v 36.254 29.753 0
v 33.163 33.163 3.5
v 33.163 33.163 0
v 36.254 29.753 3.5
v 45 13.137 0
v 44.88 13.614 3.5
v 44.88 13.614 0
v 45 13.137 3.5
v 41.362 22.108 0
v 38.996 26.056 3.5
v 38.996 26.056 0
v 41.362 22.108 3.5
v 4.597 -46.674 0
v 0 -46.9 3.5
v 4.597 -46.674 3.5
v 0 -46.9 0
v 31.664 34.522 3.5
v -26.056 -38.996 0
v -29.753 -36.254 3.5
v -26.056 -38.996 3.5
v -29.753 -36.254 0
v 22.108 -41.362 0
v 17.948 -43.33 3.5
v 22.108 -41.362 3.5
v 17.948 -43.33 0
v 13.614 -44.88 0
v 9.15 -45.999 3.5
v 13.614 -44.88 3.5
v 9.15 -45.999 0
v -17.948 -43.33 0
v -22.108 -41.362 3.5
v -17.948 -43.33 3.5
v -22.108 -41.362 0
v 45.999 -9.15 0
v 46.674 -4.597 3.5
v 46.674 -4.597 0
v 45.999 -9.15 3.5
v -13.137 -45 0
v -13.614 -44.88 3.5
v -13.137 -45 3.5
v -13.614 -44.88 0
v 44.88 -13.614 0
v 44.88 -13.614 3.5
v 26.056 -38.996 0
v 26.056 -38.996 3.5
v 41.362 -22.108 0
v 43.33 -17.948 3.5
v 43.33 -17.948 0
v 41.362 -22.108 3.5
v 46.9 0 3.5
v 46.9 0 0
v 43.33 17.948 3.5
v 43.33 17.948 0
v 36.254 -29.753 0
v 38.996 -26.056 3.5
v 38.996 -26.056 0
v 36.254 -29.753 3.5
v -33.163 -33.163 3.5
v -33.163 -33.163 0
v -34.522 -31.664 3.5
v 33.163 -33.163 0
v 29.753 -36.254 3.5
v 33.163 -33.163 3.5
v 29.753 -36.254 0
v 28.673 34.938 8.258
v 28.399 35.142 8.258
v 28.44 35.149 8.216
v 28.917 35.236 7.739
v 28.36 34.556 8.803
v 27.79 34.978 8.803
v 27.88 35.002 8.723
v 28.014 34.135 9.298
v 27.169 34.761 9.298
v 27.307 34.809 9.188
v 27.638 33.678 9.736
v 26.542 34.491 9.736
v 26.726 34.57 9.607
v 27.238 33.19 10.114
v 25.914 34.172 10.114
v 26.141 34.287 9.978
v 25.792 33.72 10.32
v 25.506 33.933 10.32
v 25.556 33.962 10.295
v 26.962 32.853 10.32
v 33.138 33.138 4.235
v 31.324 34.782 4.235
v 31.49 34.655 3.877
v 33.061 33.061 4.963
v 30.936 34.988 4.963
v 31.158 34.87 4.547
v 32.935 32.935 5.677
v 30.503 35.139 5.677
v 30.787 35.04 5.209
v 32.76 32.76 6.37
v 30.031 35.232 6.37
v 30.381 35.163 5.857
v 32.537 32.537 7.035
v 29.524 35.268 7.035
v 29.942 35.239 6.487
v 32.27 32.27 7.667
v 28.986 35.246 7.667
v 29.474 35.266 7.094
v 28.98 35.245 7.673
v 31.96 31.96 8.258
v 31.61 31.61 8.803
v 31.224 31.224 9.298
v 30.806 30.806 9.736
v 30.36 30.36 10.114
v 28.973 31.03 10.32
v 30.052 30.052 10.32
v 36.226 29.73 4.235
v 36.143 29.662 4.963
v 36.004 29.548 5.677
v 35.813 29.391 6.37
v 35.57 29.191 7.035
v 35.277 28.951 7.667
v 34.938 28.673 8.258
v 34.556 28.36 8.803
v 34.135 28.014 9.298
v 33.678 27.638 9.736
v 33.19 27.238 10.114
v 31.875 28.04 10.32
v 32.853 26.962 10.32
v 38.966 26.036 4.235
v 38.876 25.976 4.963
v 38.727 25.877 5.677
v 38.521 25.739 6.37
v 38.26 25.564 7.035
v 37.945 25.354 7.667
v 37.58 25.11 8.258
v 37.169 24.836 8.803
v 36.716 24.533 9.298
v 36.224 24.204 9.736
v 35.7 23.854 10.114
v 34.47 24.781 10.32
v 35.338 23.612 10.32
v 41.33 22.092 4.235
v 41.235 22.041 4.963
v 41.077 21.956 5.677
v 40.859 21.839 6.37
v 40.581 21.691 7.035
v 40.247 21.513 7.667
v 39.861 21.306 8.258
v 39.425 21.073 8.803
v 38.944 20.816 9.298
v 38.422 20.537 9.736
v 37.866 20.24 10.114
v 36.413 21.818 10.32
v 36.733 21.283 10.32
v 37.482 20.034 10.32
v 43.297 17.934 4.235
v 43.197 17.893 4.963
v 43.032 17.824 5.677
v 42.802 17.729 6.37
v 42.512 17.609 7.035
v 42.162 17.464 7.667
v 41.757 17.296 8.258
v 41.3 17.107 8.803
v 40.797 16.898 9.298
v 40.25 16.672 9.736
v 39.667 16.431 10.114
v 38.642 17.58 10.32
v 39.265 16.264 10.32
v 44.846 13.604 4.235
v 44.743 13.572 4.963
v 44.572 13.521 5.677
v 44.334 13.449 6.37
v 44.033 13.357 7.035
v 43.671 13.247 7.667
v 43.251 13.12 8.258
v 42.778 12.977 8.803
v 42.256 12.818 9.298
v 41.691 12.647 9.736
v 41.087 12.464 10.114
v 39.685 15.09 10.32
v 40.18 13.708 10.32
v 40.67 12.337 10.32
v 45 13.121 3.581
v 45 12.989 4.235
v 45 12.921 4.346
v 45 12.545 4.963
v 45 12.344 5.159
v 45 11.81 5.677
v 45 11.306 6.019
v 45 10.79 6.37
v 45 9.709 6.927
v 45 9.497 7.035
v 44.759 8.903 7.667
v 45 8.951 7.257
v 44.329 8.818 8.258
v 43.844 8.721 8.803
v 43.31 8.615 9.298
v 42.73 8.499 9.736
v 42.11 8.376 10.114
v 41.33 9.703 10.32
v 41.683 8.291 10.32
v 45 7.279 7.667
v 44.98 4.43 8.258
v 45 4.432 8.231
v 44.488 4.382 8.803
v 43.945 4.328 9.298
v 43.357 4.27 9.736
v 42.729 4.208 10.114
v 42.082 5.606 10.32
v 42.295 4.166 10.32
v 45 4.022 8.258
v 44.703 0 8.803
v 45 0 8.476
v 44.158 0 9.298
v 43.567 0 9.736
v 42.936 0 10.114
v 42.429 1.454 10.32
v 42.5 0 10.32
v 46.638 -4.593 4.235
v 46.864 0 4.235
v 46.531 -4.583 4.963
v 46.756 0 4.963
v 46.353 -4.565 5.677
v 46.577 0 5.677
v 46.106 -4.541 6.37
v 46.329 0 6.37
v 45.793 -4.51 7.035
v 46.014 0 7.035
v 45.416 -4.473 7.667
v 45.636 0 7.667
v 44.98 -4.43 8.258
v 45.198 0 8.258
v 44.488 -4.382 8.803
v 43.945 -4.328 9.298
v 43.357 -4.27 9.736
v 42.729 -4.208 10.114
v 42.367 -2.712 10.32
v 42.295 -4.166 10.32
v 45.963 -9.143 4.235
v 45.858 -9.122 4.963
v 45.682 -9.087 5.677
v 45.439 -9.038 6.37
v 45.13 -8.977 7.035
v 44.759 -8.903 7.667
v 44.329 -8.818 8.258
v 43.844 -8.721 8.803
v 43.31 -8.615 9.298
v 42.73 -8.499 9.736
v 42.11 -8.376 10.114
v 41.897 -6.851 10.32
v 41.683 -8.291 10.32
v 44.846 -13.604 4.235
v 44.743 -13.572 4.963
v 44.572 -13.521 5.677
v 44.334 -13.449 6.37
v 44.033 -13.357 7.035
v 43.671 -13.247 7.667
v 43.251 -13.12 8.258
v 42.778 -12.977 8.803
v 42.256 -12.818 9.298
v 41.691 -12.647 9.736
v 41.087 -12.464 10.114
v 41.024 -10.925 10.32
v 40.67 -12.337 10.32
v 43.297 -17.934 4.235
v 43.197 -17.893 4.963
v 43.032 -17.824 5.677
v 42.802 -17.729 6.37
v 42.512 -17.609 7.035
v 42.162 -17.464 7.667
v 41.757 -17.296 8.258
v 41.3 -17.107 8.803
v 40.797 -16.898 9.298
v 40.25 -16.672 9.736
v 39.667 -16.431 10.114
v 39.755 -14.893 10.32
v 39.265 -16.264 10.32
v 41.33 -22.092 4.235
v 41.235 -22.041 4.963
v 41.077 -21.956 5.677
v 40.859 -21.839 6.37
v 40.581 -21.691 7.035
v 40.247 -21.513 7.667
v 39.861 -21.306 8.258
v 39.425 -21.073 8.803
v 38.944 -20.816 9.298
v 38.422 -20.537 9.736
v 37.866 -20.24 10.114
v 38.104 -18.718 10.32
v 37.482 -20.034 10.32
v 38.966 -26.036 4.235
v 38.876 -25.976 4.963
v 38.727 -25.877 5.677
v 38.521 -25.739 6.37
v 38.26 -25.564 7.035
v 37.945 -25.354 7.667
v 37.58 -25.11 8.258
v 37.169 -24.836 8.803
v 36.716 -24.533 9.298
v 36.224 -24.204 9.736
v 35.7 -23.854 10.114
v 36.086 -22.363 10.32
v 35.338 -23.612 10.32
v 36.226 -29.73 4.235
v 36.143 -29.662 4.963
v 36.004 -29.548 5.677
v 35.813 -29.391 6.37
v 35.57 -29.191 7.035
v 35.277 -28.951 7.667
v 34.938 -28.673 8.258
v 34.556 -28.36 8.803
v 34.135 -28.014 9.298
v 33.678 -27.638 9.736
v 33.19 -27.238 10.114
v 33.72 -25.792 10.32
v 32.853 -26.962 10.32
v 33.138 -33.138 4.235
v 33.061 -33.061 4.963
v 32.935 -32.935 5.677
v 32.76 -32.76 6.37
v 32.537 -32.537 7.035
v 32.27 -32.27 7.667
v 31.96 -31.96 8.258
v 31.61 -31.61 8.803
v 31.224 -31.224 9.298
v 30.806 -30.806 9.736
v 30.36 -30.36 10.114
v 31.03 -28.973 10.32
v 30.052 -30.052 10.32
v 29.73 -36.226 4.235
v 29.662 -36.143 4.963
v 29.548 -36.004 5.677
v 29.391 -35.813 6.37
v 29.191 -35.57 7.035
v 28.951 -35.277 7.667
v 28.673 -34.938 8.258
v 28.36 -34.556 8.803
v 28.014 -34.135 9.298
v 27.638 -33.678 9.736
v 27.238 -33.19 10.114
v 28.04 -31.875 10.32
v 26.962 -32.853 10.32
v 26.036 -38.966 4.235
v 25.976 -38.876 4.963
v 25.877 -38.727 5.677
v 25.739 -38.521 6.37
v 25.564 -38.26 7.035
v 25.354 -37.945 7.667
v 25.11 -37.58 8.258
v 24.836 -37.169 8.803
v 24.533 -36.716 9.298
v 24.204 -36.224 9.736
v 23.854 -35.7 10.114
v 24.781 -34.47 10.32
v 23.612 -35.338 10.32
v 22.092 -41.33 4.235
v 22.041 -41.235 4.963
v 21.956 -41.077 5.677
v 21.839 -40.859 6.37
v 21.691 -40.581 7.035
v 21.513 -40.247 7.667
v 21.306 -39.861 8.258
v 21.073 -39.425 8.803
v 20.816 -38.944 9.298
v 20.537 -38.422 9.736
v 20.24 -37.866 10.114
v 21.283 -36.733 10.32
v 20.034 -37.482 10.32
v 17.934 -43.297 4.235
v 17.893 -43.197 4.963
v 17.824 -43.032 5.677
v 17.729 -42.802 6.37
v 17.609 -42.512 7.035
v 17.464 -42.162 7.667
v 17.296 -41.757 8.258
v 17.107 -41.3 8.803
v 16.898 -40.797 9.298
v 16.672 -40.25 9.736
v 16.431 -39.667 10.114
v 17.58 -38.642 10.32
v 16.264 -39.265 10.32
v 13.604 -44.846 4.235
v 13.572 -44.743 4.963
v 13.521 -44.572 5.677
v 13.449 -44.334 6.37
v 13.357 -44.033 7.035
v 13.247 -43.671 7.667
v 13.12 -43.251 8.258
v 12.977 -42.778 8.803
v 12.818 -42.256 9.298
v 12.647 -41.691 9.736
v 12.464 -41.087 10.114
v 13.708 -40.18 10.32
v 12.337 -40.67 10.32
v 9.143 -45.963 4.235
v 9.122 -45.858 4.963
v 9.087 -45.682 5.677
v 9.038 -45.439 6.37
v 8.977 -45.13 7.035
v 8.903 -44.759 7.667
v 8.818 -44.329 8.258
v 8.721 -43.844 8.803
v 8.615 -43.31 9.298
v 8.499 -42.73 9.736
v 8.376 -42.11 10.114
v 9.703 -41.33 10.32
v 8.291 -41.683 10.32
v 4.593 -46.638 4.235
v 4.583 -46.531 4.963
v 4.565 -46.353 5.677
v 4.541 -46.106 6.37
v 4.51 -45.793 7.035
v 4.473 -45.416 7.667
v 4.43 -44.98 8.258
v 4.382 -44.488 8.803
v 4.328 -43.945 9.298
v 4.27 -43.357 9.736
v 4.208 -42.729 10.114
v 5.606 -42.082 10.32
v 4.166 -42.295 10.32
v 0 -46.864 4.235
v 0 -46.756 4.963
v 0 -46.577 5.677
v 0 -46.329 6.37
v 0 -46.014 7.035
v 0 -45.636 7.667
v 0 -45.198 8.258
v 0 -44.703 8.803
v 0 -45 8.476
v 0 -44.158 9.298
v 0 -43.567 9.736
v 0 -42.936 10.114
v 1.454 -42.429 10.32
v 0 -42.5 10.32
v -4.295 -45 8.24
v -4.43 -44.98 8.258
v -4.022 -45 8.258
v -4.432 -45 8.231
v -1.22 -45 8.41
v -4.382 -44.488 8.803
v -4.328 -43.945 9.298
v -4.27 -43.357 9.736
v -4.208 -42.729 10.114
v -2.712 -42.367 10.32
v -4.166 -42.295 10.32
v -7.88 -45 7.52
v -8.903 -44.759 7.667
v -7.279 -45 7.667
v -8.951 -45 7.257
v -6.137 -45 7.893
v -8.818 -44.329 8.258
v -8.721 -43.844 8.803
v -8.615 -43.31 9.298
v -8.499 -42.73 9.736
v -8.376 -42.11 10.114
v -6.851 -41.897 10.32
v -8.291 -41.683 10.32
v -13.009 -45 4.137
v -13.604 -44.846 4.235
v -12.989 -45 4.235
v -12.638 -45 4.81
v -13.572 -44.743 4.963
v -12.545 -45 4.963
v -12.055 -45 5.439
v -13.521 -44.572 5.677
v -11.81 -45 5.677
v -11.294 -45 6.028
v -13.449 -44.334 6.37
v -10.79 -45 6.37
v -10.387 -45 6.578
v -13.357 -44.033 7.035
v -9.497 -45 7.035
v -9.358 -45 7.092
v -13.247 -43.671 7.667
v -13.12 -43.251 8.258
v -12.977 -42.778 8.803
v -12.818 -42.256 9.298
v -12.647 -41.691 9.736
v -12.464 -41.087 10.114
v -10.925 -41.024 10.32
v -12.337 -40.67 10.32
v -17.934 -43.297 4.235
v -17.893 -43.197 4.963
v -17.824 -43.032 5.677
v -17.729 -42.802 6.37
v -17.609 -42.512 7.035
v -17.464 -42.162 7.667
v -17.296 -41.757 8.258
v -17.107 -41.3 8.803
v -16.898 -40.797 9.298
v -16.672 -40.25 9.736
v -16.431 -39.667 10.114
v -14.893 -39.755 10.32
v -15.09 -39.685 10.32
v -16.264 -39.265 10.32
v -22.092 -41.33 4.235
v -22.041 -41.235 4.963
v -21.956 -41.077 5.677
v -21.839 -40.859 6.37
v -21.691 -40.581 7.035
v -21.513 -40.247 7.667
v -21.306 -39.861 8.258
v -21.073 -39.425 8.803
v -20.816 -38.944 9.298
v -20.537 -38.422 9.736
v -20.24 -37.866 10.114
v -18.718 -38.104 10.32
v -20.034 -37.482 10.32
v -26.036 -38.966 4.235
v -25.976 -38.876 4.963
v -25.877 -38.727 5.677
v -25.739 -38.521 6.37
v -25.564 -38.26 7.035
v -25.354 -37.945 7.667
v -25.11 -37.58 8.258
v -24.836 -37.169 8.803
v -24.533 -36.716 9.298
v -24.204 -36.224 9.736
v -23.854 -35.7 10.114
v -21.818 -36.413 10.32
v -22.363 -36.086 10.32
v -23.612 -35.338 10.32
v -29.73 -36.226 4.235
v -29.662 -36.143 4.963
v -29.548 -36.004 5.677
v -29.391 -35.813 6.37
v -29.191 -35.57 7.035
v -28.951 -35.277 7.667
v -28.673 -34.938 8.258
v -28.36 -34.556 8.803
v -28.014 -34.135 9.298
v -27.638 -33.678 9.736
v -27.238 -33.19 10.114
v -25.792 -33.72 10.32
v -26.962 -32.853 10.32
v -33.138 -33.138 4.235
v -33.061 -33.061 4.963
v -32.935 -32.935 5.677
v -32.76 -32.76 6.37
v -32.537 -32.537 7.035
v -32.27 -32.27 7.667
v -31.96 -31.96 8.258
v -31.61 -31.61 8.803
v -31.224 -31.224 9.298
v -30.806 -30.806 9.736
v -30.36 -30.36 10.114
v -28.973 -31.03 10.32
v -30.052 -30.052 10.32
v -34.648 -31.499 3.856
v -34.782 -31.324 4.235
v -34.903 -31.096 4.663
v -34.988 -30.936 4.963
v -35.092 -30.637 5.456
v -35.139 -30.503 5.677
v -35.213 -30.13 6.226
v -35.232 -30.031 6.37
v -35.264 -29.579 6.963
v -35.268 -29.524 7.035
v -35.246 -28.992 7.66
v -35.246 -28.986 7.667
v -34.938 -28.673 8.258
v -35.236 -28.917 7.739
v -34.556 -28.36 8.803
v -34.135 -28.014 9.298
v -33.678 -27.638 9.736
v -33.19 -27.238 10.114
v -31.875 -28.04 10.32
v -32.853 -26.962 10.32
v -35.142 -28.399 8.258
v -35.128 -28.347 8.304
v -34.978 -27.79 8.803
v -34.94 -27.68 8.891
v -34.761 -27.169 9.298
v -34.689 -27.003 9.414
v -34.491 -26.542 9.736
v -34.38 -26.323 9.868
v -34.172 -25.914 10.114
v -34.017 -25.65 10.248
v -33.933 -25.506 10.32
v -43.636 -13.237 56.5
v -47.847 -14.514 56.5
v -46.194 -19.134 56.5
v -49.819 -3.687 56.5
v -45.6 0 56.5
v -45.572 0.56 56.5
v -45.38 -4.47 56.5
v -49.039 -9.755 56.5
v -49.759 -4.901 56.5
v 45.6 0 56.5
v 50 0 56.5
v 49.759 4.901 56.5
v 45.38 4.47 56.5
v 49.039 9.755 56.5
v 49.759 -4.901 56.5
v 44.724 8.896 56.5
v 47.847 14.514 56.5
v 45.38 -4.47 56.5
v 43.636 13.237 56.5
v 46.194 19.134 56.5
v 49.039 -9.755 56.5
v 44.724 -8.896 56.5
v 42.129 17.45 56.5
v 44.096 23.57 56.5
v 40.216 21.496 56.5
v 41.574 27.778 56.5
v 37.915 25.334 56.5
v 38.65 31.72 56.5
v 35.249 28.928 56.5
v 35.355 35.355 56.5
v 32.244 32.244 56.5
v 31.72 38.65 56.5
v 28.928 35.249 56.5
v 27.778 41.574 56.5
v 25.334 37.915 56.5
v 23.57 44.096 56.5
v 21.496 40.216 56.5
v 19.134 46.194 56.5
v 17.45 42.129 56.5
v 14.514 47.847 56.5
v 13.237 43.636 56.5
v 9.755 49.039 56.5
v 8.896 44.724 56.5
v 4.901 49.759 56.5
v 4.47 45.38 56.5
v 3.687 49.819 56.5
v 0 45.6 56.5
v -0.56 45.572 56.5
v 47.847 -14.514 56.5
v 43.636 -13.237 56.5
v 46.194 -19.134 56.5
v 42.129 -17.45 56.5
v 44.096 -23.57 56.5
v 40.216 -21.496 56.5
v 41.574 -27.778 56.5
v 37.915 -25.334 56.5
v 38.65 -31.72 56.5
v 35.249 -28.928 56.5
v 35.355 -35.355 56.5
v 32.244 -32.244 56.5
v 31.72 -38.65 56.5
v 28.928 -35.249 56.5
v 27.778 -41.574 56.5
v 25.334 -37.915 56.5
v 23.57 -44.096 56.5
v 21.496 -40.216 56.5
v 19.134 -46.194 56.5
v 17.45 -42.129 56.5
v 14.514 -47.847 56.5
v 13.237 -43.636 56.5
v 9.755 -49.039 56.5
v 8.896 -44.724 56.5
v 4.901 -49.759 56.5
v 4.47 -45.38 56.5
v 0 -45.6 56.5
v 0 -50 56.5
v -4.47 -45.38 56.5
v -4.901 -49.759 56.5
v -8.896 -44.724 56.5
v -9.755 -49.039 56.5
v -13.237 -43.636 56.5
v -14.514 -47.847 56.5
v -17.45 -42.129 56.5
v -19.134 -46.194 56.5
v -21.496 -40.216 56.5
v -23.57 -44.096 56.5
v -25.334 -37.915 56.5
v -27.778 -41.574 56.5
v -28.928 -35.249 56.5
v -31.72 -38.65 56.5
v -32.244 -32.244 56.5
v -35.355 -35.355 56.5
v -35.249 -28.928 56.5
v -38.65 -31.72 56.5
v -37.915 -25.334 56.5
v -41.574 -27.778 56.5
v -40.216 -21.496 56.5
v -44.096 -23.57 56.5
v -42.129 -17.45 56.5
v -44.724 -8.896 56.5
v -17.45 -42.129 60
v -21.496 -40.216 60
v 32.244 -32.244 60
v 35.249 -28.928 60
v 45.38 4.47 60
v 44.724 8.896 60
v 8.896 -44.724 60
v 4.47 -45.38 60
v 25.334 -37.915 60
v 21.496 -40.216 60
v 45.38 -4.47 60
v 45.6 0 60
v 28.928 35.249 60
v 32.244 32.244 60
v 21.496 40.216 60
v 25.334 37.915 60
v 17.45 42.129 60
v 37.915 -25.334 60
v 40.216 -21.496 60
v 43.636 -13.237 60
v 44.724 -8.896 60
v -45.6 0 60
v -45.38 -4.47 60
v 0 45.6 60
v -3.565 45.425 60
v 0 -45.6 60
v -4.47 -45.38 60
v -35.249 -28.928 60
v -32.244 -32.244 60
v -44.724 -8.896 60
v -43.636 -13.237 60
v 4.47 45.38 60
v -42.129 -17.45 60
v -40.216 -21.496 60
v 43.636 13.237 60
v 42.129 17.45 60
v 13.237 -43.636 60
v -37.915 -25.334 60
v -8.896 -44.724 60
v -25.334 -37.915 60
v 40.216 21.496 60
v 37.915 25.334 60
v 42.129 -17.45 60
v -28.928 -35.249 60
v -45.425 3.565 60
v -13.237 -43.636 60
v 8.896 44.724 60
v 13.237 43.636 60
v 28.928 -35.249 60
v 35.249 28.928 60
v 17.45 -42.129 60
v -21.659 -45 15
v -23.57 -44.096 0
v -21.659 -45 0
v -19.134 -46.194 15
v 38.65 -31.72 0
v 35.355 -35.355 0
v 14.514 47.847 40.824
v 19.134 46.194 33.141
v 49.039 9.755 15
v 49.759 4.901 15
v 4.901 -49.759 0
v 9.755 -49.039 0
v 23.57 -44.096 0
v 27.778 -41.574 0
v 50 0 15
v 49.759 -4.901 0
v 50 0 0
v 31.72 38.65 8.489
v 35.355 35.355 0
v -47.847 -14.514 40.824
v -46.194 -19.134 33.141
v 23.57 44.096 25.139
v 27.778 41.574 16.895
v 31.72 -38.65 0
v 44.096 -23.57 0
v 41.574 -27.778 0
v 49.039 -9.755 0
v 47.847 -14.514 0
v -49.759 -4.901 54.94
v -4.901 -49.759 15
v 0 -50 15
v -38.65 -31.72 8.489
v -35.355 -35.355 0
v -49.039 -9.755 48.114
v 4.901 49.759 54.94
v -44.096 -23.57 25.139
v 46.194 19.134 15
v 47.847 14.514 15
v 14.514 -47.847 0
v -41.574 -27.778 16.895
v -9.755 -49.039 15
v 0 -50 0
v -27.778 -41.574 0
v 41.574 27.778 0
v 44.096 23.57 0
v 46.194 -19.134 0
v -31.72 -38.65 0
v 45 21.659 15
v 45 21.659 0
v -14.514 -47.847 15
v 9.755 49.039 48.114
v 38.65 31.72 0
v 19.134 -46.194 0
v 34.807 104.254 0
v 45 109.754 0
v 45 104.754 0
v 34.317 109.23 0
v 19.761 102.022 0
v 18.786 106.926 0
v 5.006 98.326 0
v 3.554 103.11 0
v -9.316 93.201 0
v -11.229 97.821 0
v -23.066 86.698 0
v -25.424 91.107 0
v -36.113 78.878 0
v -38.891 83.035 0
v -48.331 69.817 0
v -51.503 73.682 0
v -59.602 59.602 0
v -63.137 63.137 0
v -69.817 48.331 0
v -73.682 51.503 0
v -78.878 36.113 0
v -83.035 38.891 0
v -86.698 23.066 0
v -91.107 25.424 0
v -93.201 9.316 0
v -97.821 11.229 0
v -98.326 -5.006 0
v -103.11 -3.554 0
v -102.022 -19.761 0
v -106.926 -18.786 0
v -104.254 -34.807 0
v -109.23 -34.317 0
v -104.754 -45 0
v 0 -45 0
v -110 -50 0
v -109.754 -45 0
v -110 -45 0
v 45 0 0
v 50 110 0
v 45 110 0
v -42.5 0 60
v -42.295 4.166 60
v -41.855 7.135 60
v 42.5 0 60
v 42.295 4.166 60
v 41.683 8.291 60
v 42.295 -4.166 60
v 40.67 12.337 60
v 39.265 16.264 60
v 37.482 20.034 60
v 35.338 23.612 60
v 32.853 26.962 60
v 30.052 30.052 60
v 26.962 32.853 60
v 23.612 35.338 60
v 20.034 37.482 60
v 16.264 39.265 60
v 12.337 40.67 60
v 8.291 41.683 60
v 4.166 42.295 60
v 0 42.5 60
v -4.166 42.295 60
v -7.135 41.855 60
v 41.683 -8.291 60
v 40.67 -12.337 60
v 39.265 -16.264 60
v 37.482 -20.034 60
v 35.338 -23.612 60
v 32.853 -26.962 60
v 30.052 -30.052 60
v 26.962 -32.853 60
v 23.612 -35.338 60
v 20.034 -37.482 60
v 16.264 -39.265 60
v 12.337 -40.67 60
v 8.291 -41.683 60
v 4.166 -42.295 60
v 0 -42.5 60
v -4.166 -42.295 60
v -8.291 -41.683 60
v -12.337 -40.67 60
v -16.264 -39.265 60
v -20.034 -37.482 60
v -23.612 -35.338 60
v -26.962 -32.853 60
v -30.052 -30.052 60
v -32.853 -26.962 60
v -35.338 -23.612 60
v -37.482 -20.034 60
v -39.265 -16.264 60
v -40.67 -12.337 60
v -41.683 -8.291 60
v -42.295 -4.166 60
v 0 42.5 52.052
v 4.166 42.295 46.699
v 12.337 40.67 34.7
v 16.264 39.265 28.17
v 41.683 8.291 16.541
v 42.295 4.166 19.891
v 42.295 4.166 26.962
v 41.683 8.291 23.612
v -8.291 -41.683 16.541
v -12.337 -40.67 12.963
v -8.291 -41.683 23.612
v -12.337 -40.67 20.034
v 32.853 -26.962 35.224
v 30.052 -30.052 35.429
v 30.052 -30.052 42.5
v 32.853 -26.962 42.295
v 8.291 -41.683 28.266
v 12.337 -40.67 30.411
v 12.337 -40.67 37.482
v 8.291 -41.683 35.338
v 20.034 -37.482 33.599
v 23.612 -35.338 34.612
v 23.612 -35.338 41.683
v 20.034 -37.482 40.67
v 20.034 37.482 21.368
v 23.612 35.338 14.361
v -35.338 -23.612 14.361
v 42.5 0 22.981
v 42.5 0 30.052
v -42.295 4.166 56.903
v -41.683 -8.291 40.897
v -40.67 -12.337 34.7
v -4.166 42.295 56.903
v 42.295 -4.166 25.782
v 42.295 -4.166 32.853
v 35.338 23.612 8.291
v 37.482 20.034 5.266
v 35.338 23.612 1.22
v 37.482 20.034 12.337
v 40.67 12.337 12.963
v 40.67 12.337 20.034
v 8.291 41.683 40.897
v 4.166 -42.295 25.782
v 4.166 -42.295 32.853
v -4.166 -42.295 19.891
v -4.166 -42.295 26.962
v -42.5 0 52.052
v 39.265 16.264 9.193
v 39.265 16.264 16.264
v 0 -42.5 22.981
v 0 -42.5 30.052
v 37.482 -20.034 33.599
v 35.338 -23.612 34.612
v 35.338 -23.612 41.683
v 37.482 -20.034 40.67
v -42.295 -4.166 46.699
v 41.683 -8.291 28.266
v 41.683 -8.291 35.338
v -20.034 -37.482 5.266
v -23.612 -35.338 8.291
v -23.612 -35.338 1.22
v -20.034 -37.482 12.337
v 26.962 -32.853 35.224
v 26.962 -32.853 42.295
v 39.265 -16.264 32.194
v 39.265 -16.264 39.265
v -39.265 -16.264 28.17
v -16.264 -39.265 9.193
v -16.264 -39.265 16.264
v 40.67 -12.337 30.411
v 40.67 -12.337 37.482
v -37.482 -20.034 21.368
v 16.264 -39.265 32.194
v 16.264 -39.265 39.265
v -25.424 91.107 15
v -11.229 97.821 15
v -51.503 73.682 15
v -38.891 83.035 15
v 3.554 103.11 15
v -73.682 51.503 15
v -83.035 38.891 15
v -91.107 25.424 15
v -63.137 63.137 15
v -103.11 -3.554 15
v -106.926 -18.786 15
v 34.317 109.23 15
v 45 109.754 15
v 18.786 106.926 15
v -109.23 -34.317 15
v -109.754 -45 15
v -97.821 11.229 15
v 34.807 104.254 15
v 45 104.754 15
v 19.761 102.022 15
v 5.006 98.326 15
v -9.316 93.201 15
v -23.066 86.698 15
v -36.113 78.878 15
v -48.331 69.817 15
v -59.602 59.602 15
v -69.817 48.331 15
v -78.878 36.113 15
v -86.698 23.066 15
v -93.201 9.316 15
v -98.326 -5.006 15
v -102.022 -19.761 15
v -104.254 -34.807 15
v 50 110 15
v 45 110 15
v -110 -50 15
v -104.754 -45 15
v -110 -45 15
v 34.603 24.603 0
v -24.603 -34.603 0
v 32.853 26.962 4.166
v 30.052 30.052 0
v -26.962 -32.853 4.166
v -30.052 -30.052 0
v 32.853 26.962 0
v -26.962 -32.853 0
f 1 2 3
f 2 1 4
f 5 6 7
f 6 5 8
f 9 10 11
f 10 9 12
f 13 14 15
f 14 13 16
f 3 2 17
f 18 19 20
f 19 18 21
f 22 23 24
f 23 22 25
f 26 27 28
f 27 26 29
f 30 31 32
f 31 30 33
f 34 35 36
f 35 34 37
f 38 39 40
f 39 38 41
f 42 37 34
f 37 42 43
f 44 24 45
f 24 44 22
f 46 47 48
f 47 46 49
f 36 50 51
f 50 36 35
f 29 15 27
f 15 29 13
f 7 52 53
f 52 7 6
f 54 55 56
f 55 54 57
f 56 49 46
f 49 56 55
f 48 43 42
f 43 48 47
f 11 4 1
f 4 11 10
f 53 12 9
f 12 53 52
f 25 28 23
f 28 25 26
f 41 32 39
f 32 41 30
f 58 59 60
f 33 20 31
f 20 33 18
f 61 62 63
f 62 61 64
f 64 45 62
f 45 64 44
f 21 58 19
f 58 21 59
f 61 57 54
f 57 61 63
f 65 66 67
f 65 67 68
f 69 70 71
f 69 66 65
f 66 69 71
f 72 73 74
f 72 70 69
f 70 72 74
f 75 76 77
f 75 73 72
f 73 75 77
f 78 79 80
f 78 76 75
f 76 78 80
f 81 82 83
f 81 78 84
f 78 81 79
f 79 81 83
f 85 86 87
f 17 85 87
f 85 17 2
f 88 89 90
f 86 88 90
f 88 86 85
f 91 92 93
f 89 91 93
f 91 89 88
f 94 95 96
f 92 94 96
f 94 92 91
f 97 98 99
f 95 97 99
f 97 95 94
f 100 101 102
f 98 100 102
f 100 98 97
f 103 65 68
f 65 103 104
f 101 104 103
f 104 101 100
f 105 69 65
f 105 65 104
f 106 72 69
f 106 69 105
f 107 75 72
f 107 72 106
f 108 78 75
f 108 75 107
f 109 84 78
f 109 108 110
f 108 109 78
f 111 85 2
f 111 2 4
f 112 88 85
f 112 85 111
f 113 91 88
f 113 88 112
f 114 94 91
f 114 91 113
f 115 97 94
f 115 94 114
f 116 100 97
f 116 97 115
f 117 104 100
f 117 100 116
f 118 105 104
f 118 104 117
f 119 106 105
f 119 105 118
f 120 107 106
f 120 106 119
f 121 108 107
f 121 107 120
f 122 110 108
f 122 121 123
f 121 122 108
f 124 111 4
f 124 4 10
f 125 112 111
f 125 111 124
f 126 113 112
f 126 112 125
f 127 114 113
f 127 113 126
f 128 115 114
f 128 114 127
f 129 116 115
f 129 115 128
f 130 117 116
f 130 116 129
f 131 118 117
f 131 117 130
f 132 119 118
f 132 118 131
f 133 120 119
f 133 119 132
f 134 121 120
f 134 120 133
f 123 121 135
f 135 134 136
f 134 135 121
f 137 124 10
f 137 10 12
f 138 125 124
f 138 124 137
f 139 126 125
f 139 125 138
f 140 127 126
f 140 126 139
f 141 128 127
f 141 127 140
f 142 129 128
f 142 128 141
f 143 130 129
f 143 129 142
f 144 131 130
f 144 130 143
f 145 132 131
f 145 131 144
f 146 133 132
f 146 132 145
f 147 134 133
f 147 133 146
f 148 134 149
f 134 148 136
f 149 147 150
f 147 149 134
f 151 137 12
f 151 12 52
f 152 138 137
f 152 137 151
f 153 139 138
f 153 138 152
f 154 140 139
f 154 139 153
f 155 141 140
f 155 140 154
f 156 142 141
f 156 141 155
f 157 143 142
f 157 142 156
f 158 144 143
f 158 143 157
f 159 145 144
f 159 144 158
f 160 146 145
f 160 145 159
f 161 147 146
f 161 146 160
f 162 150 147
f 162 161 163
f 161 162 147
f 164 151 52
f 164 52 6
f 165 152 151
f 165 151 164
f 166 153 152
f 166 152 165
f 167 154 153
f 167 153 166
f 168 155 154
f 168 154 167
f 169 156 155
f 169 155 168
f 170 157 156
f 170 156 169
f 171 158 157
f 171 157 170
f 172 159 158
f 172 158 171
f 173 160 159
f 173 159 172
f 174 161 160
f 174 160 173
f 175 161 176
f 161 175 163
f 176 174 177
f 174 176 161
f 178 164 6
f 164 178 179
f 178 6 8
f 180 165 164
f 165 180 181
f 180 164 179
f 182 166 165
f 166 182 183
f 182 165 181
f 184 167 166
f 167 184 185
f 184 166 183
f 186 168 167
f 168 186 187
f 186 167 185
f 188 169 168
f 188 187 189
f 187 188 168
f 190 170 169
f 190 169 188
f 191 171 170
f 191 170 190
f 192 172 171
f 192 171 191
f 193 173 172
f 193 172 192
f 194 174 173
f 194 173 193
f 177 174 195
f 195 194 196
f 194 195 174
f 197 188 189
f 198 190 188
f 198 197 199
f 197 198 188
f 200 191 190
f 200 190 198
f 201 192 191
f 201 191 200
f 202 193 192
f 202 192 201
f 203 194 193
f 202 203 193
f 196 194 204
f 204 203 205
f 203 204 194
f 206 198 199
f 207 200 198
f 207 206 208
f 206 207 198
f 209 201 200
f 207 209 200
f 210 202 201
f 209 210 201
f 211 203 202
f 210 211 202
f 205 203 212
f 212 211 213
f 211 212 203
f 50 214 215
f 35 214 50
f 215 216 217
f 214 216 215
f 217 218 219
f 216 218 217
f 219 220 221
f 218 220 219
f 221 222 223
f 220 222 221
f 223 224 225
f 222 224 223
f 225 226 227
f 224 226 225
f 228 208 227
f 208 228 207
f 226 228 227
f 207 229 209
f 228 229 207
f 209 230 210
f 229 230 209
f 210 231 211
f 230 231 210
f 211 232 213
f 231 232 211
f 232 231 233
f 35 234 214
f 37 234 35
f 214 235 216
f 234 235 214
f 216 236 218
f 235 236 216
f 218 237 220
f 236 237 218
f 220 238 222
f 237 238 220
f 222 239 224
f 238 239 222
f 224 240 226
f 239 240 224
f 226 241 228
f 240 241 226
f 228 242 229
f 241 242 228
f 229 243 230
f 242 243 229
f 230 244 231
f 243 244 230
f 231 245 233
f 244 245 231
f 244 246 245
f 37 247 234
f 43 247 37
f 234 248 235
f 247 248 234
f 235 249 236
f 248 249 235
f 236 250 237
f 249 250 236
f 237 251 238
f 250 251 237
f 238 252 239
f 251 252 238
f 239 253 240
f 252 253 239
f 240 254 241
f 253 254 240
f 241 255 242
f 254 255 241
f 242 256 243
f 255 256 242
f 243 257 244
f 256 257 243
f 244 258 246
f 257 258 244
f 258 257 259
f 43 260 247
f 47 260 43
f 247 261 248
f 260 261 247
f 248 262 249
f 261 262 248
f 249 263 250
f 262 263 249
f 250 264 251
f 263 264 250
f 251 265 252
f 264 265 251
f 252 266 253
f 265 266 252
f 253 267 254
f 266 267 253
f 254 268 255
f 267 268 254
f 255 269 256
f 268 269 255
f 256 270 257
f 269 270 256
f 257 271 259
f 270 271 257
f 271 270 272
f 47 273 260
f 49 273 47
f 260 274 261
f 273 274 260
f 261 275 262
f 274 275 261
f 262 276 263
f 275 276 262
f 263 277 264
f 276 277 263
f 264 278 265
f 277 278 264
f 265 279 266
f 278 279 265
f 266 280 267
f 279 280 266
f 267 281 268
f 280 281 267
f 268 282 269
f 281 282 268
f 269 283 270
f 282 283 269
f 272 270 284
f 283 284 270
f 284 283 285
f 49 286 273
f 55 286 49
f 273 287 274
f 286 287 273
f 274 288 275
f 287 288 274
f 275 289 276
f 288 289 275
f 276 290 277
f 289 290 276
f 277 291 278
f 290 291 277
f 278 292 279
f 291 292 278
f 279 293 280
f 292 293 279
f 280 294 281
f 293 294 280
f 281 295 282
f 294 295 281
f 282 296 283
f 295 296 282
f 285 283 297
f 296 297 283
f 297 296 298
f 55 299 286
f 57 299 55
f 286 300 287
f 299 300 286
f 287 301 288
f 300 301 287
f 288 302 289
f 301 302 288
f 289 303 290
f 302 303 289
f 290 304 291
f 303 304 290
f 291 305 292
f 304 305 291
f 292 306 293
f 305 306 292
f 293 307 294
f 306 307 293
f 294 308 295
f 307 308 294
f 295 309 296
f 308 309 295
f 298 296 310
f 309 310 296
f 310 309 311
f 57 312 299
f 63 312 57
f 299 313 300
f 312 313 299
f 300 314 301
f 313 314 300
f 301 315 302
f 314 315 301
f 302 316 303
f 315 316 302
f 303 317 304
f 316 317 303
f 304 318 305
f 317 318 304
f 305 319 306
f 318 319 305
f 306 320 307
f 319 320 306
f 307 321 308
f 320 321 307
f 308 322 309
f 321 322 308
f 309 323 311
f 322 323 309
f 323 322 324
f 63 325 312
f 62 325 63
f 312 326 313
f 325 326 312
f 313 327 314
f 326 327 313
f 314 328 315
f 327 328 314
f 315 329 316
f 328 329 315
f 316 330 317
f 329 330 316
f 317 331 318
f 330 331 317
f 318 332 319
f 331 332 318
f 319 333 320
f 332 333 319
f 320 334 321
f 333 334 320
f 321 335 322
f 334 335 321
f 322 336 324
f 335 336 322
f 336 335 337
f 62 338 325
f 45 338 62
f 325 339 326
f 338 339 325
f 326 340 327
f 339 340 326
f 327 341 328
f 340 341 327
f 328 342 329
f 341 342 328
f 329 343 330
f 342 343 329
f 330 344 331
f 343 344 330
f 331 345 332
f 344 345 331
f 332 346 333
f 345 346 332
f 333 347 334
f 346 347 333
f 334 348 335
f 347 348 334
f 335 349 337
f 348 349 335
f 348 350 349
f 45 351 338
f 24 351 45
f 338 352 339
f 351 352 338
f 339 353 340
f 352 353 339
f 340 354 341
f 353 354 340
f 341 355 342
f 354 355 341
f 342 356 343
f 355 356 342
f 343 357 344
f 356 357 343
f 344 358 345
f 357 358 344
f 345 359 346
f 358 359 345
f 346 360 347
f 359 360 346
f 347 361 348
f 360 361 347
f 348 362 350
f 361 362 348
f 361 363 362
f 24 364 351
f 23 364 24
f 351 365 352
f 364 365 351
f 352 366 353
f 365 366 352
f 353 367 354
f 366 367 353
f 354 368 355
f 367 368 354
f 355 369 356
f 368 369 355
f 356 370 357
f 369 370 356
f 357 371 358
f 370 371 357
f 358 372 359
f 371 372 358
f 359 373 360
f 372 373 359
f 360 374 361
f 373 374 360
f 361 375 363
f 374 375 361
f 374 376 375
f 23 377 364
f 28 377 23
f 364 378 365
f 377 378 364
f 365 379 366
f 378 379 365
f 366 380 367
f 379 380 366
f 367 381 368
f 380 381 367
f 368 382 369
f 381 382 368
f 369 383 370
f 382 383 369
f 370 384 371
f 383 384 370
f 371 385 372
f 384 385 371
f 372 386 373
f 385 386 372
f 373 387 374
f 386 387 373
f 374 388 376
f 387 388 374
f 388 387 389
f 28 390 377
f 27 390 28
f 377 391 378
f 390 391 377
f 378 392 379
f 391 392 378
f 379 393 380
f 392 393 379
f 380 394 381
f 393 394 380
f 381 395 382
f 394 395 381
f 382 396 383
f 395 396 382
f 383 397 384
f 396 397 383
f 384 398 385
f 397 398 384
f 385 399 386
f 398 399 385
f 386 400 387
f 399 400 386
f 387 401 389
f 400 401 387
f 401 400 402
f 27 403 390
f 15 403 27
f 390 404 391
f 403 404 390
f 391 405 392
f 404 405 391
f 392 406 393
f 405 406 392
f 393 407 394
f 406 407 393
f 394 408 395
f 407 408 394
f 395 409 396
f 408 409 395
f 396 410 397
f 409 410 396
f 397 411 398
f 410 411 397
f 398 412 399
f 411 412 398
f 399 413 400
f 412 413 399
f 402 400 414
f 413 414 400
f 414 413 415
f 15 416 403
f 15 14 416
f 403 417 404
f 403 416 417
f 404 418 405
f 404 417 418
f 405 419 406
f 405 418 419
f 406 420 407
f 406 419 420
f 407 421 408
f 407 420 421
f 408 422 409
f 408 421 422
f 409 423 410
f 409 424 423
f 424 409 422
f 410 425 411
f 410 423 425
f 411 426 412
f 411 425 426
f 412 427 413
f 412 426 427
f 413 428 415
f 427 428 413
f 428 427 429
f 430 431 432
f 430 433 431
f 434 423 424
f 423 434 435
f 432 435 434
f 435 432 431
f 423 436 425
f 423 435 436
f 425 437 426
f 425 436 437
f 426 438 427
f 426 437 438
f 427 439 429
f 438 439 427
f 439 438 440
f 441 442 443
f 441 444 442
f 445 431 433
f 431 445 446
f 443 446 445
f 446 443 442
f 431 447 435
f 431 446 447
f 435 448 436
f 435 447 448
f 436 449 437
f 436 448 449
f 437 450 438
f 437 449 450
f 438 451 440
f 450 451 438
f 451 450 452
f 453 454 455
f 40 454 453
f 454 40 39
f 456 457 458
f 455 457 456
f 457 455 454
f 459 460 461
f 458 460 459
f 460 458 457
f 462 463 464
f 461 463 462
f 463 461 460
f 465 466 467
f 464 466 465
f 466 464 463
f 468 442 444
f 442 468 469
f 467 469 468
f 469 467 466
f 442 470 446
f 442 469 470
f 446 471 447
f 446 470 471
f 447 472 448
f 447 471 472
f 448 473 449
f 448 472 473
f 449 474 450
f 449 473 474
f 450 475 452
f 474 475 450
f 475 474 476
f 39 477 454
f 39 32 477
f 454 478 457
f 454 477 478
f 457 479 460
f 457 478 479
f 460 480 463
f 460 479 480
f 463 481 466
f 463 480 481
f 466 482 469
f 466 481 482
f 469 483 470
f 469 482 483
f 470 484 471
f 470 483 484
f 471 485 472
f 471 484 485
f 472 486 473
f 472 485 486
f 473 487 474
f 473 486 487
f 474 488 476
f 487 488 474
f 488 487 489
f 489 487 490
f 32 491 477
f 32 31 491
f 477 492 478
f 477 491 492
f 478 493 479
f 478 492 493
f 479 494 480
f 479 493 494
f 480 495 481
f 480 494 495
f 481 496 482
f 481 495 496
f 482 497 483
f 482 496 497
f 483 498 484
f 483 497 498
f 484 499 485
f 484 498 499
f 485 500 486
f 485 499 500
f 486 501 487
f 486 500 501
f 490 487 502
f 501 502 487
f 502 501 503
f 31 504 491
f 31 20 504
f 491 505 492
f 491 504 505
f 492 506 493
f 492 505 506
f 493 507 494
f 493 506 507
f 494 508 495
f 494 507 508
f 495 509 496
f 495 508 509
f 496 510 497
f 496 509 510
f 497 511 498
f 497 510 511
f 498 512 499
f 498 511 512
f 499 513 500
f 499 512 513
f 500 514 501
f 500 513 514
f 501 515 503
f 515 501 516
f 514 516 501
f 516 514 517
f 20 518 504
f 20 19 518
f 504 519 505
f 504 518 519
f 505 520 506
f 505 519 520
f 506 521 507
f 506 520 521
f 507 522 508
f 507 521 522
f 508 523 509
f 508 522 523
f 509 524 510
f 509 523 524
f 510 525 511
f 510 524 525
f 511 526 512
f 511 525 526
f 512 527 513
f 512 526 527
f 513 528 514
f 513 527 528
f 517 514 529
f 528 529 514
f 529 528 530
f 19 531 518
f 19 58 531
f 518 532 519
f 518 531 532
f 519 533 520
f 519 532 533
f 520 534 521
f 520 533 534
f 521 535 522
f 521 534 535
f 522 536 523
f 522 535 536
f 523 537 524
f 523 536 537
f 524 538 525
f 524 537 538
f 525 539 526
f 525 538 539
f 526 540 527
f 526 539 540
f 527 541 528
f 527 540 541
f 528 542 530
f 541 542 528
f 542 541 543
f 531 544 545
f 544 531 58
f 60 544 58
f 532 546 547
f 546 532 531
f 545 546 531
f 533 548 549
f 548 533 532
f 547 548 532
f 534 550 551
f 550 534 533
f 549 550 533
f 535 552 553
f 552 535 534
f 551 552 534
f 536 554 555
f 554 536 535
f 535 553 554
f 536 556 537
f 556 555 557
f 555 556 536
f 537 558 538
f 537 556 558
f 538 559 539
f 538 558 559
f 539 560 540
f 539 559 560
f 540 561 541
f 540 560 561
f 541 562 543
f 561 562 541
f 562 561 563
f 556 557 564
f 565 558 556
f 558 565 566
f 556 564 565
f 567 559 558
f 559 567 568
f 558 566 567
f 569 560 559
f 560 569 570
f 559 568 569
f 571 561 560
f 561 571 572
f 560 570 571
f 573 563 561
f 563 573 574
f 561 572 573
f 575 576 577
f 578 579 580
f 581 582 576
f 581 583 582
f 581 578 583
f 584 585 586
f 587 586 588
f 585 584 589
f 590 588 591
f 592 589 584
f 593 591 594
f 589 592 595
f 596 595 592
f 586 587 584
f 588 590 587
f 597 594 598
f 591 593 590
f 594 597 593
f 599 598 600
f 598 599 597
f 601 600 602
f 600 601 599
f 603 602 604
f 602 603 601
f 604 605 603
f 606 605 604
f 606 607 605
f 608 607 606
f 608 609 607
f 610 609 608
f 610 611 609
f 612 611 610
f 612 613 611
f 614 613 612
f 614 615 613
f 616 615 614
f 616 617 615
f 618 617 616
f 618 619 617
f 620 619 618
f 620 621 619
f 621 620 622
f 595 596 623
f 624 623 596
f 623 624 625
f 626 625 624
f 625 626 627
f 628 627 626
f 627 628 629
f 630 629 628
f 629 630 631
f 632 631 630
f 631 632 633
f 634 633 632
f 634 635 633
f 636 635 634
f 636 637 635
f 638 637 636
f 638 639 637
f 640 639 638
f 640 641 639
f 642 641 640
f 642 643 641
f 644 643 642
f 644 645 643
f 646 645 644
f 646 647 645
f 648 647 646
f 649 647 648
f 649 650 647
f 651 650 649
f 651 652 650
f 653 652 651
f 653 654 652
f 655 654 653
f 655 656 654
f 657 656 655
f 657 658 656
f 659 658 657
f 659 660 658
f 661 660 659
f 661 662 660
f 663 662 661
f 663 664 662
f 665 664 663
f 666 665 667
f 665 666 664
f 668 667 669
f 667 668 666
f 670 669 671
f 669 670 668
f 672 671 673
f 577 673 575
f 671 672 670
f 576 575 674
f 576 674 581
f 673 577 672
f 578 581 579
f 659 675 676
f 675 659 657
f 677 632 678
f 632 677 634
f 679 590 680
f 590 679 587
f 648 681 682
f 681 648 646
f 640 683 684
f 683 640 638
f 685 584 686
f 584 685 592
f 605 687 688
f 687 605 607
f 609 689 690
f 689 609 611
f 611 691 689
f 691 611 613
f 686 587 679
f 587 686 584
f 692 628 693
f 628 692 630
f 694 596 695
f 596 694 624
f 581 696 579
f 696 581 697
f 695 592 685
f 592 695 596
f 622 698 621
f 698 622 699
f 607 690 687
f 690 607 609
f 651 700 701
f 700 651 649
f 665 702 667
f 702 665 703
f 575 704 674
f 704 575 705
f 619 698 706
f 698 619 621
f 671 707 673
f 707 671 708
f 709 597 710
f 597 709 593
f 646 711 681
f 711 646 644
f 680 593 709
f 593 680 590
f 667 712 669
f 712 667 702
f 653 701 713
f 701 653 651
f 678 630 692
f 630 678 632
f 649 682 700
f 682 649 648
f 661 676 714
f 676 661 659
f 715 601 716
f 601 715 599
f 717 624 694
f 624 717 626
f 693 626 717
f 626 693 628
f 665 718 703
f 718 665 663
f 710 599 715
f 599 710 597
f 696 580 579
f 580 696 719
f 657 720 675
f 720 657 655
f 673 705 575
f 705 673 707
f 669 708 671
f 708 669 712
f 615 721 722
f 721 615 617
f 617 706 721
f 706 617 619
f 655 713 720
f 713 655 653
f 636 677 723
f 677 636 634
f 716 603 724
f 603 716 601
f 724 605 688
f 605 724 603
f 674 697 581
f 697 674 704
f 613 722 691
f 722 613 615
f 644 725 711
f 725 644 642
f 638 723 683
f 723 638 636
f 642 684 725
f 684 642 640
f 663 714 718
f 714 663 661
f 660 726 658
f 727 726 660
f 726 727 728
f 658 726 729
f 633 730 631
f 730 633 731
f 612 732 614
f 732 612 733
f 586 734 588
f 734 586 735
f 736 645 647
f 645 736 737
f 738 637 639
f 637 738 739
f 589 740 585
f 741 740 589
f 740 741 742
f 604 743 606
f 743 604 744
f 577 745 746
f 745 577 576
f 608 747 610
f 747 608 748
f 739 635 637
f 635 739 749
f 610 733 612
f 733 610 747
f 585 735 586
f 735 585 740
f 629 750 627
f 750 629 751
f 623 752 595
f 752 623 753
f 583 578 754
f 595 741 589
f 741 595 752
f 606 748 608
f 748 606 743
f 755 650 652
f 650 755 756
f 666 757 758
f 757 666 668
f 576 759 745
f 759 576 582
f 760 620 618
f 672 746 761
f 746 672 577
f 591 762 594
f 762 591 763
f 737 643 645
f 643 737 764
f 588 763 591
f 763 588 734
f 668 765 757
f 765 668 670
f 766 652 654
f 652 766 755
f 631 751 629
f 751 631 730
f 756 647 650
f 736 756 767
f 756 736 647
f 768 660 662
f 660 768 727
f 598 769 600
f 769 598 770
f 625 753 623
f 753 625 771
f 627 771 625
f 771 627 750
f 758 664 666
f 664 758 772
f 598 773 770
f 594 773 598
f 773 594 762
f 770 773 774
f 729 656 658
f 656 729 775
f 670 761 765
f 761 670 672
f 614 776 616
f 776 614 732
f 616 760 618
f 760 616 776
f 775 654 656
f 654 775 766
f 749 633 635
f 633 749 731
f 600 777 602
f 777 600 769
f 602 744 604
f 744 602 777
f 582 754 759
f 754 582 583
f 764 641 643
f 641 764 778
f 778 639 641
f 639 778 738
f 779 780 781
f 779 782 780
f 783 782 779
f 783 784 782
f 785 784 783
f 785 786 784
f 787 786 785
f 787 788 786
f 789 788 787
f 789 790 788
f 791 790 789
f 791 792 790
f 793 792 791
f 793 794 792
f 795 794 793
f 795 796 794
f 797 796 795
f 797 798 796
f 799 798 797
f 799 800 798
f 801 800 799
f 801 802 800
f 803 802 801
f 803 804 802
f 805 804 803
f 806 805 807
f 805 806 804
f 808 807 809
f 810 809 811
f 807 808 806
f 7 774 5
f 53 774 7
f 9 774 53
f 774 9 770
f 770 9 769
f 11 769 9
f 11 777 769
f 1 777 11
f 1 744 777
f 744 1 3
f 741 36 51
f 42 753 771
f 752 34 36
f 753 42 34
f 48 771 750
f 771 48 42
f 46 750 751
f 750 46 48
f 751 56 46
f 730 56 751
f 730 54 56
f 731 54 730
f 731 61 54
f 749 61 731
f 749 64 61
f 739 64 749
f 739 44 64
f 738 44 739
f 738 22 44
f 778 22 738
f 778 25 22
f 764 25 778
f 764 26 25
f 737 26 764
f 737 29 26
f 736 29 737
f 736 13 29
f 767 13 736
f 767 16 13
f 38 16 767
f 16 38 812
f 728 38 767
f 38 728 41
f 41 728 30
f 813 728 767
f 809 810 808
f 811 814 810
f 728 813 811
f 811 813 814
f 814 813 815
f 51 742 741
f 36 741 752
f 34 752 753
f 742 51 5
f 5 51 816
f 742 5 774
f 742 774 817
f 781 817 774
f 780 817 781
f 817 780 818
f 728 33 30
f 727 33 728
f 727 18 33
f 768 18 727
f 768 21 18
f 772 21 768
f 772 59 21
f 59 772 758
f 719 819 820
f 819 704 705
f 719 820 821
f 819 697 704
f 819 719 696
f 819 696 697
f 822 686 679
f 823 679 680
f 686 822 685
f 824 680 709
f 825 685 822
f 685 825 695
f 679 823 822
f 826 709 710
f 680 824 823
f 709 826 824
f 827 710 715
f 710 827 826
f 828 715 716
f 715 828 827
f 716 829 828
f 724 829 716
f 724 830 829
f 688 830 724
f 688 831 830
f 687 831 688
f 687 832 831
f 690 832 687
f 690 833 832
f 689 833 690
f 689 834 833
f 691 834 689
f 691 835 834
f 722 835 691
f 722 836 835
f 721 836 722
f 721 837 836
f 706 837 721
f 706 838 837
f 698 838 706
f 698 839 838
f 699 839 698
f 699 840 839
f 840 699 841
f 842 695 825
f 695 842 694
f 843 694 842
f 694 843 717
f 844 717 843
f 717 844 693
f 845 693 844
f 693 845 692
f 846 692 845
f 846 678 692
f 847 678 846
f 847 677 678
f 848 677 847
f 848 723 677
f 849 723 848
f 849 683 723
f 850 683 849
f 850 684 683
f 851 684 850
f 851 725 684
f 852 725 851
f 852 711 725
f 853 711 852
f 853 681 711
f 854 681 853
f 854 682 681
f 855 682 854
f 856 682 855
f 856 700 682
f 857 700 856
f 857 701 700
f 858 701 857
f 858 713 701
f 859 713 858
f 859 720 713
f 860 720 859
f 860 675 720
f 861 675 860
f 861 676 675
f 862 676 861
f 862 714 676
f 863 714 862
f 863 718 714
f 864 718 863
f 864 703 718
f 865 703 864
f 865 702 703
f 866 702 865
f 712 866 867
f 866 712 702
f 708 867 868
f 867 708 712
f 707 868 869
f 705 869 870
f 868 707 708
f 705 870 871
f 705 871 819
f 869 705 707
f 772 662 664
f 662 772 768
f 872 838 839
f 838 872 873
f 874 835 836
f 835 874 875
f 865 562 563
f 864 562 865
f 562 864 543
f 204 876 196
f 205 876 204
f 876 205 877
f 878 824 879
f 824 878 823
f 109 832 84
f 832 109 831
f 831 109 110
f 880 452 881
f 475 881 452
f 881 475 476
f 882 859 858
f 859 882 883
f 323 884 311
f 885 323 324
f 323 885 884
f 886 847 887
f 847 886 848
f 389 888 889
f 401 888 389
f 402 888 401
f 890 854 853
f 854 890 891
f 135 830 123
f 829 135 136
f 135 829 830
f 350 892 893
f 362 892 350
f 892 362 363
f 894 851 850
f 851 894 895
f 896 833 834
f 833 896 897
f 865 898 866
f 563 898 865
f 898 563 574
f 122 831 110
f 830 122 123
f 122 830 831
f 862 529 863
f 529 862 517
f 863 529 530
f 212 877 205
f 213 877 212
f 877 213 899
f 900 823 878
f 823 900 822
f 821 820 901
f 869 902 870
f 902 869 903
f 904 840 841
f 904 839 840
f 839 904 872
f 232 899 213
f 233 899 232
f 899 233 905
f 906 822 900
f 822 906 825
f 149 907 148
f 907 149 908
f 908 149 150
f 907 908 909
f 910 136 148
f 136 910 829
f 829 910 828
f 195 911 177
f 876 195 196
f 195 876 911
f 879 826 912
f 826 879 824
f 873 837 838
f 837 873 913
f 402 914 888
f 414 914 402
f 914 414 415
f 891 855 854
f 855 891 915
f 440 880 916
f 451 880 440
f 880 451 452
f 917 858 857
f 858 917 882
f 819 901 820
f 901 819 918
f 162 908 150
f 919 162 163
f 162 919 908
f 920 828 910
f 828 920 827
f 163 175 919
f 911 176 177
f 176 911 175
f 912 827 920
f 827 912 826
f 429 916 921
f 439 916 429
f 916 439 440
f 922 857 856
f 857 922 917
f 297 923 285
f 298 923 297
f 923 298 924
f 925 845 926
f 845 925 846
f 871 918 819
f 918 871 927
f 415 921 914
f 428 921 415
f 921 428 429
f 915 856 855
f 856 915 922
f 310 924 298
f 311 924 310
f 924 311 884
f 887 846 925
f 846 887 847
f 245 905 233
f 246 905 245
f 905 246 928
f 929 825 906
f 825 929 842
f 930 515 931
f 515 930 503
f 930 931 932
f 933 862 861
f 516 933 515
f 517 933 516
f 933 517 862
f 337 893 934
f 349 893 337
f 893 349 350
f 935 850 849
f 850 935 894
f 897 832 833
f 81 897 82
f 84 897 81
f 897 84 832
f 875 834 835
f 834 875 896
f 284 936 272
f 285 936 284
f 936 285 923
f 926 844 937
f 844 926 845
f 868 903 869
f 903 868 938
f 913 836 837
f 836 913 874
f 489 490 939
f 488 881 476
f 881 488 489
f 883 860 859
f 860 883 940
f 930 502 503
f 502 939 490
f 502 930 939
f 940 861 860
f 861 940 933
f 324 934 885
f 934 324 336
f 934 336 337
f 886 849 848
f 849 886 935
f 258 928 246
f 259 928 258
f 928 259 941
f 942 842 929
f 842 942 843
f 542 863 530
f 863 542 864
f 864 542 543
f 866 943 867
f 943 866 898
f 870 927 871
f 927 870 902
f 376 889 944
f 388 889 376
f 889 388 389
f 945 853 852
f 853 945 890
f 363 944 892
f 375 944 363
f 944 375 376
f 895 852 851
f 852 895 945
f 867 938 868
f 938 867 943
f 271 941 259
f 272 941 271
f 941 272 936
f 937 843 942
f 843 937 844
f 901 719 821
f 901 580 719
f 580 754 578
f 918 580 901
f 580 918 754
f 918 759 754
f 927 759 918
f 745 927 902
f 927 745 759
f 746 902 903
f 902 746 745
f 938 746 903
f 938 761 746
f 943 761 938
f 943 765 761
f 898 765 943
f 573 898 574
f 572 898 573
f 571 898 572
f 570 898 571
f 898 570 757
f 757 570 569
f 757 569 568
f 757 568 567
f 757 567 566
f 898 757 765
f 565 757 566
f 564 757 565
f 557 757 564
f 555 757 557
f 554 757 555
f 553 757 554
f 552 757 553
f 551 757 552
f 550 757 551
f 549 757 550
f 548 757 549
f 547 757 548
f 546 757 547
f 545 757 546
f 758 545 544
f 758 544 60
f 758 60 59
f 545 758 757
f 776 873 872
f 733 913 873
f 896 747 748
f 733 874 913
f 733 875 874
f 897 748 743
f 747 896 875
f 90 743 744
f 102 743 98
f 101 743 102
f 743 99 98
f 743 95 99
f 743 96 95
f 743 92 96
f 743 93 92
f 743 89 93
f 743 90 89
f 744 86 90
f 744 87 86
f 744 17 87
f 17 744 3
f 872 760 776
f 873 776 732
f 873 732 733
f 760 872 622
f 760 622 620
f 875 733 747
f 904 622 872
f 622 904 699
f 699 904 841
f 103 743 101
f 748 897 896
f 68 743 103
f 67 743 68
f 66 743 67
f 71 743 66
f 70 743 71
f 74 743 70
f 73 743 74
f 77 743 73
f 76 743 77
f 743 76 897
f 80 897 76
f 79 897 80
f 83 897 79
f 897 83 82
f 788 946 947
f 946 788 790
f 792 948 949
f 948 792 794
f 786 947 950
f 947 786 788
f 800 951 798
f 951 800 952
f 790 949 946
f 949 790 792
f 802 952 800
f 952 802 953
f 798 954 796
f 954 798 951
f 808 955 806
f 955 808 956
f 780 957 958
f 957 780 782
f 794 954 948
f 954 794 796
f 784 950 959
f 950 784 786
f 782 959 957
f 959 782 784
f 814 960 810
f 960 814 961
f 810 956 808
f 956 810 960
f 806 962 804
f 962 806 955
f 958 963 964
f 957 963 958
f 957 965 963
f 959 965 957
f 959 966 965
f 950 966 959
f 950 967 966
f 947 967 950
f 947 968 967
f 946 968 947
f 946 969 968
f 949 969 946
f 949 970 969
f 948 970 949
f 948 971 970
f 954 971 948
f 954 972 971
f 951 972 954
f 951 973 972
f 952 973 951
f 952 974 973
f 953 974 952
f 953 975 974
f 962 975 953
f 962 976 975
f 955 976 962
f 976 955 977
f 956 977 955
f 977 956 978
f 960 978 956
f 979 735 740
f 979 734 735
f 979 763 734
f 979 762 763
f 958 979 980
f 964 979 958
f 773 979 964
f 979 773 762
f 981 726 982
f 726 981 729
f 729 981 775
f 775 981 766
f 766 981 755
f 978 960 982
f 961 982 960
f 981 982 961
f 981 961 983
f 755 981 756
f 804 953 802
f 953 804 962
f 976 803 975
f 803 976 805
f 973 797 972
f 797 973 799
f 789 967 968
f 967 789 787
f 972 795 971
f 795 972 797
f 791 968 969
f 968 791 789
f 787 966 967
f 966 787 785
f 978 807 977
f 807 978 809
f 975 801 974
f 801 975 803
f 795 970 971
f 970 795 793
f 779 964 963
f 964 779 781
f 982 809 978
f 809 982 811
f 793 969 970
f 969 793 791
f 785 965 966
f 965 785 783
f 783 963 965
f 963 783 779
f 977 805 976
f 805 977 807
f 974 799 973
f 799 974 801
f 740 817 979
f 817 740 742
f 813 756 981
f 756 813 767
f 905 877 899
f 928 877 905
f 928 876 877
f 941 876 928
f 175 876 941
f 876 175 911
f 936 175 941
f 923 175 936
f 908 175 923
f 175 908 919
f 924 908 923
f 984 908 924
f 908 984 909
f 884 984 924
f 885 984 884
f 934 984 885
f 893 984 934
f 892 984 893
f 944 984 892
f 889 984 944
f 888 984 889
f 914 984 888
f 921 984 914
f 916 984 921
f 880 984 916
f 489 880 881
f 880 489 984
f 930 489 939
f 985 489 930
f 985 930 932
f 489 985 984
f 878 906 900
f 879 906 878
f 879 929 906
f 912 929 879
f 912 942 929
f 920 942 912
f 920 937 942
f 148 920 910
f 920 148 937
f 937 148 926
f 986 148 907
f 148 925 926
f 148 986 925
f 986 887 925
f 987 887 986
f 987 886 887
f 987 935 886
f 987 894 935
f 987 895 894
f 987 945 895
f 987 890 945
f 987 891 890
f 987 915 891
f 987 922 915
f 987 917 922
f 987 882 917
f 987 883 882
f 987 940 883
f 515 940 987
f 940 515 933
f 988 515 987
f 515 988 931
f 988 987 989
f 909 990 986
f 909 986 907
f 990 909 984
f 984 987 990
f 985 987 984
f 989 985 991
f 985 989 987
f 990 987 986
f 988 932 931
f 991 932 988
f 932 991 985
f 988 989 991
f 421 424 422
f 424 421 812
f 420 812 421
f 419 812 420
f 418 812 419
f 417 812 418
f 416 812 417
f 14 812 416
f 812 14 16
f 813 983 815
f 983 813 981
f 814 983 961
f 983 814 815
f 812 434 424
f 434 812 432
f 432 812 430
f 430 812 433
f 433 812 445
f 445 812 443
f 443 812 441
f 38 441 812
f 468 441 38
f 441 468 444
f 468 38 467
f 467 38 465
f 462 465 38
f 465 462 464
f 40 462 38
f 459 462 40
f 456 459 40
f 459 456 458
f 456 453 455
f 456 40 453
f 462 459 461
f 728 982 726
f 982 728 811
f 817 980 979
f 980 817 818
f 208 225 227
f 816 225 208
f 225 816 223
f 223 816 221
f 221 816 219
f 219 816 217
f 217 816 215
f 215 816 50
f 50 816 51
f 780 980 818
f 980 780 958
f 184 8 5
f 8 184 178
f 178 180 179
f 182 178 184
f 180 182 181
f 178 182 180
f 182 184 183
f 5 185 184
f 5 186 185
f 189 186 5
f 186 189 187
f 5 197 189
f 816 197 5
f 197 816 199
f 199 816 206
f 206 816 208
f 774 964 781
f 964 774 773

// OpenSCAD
union(){
    difference(){
        cylinder(h=60.0, r=50.0, $fn=64);
        translate(v=[0, 0, -30.0]){
            cylinder(h=120.0, r=42.5, $fn=64);
        };
        union(){
            translate(v=[0, 0, -1]){
                cylinder(h=4.5, r=46.9, $fn=64);
            };
            translate(v=[0, 0, 3.5]){
                rotate_extrude(convexity=10, $fn=64){
                    translate(v=[39.4, 0, 0]){
                        circle(r=7.5, $fn=64);
                    };
                };
            };
        };
        translate(v=[0, 0, 56.5]){
            difference(){
                cylinder(h=4.5, r=51.0, $fn=64);
                translate(v=[0, 0, -1]){
                    cylinder(h=5.5, r=45.6, $fn=64);
                };
            };
        };
        rotate(a=[0, 0, 135]){
            rotate(a=[0, 30, 0]){
                translate(v=[0, -51.0, 0]){
                    cube(size=[51.0, 102, 120.0]);
                };
            };
        };
    };
    translate(v=[-110.0, -50.0, 0]){
        cube(size=[110.0, 5, 15.0]);
    };
    translate(v=[50.0, 0, 0]){
        rotate(a=[0, 0, 90]){
            cube(size=[110.0, 5, 15.0]);
        };
    };
    translate(v=[50.0, -50.0, 0]){
        intersection(){
            difference(){
                cylinder(h=15.0, r=160.0, $fn=64);
                translate(v=[0, 0, -1]){
                    cylinder(h=17.0, r=155.0, $fn=64);
                };
            };
            translate(v=[-161.0, 0, -1]){
                cube(size=[161.0, 161.0, 17.0]);
            };
        };
    };
    intersection(){
        rotate(a=[0, 0, -45]){
            rotate(a=[0, 45, 0]){
                translate(v=[0, -50.0, 0]){
                    cube(size=[5, 100, 100]);
                };
            };
        };
        cylinder(h=60.0, r=42.5, $fn=64);
    };
};
